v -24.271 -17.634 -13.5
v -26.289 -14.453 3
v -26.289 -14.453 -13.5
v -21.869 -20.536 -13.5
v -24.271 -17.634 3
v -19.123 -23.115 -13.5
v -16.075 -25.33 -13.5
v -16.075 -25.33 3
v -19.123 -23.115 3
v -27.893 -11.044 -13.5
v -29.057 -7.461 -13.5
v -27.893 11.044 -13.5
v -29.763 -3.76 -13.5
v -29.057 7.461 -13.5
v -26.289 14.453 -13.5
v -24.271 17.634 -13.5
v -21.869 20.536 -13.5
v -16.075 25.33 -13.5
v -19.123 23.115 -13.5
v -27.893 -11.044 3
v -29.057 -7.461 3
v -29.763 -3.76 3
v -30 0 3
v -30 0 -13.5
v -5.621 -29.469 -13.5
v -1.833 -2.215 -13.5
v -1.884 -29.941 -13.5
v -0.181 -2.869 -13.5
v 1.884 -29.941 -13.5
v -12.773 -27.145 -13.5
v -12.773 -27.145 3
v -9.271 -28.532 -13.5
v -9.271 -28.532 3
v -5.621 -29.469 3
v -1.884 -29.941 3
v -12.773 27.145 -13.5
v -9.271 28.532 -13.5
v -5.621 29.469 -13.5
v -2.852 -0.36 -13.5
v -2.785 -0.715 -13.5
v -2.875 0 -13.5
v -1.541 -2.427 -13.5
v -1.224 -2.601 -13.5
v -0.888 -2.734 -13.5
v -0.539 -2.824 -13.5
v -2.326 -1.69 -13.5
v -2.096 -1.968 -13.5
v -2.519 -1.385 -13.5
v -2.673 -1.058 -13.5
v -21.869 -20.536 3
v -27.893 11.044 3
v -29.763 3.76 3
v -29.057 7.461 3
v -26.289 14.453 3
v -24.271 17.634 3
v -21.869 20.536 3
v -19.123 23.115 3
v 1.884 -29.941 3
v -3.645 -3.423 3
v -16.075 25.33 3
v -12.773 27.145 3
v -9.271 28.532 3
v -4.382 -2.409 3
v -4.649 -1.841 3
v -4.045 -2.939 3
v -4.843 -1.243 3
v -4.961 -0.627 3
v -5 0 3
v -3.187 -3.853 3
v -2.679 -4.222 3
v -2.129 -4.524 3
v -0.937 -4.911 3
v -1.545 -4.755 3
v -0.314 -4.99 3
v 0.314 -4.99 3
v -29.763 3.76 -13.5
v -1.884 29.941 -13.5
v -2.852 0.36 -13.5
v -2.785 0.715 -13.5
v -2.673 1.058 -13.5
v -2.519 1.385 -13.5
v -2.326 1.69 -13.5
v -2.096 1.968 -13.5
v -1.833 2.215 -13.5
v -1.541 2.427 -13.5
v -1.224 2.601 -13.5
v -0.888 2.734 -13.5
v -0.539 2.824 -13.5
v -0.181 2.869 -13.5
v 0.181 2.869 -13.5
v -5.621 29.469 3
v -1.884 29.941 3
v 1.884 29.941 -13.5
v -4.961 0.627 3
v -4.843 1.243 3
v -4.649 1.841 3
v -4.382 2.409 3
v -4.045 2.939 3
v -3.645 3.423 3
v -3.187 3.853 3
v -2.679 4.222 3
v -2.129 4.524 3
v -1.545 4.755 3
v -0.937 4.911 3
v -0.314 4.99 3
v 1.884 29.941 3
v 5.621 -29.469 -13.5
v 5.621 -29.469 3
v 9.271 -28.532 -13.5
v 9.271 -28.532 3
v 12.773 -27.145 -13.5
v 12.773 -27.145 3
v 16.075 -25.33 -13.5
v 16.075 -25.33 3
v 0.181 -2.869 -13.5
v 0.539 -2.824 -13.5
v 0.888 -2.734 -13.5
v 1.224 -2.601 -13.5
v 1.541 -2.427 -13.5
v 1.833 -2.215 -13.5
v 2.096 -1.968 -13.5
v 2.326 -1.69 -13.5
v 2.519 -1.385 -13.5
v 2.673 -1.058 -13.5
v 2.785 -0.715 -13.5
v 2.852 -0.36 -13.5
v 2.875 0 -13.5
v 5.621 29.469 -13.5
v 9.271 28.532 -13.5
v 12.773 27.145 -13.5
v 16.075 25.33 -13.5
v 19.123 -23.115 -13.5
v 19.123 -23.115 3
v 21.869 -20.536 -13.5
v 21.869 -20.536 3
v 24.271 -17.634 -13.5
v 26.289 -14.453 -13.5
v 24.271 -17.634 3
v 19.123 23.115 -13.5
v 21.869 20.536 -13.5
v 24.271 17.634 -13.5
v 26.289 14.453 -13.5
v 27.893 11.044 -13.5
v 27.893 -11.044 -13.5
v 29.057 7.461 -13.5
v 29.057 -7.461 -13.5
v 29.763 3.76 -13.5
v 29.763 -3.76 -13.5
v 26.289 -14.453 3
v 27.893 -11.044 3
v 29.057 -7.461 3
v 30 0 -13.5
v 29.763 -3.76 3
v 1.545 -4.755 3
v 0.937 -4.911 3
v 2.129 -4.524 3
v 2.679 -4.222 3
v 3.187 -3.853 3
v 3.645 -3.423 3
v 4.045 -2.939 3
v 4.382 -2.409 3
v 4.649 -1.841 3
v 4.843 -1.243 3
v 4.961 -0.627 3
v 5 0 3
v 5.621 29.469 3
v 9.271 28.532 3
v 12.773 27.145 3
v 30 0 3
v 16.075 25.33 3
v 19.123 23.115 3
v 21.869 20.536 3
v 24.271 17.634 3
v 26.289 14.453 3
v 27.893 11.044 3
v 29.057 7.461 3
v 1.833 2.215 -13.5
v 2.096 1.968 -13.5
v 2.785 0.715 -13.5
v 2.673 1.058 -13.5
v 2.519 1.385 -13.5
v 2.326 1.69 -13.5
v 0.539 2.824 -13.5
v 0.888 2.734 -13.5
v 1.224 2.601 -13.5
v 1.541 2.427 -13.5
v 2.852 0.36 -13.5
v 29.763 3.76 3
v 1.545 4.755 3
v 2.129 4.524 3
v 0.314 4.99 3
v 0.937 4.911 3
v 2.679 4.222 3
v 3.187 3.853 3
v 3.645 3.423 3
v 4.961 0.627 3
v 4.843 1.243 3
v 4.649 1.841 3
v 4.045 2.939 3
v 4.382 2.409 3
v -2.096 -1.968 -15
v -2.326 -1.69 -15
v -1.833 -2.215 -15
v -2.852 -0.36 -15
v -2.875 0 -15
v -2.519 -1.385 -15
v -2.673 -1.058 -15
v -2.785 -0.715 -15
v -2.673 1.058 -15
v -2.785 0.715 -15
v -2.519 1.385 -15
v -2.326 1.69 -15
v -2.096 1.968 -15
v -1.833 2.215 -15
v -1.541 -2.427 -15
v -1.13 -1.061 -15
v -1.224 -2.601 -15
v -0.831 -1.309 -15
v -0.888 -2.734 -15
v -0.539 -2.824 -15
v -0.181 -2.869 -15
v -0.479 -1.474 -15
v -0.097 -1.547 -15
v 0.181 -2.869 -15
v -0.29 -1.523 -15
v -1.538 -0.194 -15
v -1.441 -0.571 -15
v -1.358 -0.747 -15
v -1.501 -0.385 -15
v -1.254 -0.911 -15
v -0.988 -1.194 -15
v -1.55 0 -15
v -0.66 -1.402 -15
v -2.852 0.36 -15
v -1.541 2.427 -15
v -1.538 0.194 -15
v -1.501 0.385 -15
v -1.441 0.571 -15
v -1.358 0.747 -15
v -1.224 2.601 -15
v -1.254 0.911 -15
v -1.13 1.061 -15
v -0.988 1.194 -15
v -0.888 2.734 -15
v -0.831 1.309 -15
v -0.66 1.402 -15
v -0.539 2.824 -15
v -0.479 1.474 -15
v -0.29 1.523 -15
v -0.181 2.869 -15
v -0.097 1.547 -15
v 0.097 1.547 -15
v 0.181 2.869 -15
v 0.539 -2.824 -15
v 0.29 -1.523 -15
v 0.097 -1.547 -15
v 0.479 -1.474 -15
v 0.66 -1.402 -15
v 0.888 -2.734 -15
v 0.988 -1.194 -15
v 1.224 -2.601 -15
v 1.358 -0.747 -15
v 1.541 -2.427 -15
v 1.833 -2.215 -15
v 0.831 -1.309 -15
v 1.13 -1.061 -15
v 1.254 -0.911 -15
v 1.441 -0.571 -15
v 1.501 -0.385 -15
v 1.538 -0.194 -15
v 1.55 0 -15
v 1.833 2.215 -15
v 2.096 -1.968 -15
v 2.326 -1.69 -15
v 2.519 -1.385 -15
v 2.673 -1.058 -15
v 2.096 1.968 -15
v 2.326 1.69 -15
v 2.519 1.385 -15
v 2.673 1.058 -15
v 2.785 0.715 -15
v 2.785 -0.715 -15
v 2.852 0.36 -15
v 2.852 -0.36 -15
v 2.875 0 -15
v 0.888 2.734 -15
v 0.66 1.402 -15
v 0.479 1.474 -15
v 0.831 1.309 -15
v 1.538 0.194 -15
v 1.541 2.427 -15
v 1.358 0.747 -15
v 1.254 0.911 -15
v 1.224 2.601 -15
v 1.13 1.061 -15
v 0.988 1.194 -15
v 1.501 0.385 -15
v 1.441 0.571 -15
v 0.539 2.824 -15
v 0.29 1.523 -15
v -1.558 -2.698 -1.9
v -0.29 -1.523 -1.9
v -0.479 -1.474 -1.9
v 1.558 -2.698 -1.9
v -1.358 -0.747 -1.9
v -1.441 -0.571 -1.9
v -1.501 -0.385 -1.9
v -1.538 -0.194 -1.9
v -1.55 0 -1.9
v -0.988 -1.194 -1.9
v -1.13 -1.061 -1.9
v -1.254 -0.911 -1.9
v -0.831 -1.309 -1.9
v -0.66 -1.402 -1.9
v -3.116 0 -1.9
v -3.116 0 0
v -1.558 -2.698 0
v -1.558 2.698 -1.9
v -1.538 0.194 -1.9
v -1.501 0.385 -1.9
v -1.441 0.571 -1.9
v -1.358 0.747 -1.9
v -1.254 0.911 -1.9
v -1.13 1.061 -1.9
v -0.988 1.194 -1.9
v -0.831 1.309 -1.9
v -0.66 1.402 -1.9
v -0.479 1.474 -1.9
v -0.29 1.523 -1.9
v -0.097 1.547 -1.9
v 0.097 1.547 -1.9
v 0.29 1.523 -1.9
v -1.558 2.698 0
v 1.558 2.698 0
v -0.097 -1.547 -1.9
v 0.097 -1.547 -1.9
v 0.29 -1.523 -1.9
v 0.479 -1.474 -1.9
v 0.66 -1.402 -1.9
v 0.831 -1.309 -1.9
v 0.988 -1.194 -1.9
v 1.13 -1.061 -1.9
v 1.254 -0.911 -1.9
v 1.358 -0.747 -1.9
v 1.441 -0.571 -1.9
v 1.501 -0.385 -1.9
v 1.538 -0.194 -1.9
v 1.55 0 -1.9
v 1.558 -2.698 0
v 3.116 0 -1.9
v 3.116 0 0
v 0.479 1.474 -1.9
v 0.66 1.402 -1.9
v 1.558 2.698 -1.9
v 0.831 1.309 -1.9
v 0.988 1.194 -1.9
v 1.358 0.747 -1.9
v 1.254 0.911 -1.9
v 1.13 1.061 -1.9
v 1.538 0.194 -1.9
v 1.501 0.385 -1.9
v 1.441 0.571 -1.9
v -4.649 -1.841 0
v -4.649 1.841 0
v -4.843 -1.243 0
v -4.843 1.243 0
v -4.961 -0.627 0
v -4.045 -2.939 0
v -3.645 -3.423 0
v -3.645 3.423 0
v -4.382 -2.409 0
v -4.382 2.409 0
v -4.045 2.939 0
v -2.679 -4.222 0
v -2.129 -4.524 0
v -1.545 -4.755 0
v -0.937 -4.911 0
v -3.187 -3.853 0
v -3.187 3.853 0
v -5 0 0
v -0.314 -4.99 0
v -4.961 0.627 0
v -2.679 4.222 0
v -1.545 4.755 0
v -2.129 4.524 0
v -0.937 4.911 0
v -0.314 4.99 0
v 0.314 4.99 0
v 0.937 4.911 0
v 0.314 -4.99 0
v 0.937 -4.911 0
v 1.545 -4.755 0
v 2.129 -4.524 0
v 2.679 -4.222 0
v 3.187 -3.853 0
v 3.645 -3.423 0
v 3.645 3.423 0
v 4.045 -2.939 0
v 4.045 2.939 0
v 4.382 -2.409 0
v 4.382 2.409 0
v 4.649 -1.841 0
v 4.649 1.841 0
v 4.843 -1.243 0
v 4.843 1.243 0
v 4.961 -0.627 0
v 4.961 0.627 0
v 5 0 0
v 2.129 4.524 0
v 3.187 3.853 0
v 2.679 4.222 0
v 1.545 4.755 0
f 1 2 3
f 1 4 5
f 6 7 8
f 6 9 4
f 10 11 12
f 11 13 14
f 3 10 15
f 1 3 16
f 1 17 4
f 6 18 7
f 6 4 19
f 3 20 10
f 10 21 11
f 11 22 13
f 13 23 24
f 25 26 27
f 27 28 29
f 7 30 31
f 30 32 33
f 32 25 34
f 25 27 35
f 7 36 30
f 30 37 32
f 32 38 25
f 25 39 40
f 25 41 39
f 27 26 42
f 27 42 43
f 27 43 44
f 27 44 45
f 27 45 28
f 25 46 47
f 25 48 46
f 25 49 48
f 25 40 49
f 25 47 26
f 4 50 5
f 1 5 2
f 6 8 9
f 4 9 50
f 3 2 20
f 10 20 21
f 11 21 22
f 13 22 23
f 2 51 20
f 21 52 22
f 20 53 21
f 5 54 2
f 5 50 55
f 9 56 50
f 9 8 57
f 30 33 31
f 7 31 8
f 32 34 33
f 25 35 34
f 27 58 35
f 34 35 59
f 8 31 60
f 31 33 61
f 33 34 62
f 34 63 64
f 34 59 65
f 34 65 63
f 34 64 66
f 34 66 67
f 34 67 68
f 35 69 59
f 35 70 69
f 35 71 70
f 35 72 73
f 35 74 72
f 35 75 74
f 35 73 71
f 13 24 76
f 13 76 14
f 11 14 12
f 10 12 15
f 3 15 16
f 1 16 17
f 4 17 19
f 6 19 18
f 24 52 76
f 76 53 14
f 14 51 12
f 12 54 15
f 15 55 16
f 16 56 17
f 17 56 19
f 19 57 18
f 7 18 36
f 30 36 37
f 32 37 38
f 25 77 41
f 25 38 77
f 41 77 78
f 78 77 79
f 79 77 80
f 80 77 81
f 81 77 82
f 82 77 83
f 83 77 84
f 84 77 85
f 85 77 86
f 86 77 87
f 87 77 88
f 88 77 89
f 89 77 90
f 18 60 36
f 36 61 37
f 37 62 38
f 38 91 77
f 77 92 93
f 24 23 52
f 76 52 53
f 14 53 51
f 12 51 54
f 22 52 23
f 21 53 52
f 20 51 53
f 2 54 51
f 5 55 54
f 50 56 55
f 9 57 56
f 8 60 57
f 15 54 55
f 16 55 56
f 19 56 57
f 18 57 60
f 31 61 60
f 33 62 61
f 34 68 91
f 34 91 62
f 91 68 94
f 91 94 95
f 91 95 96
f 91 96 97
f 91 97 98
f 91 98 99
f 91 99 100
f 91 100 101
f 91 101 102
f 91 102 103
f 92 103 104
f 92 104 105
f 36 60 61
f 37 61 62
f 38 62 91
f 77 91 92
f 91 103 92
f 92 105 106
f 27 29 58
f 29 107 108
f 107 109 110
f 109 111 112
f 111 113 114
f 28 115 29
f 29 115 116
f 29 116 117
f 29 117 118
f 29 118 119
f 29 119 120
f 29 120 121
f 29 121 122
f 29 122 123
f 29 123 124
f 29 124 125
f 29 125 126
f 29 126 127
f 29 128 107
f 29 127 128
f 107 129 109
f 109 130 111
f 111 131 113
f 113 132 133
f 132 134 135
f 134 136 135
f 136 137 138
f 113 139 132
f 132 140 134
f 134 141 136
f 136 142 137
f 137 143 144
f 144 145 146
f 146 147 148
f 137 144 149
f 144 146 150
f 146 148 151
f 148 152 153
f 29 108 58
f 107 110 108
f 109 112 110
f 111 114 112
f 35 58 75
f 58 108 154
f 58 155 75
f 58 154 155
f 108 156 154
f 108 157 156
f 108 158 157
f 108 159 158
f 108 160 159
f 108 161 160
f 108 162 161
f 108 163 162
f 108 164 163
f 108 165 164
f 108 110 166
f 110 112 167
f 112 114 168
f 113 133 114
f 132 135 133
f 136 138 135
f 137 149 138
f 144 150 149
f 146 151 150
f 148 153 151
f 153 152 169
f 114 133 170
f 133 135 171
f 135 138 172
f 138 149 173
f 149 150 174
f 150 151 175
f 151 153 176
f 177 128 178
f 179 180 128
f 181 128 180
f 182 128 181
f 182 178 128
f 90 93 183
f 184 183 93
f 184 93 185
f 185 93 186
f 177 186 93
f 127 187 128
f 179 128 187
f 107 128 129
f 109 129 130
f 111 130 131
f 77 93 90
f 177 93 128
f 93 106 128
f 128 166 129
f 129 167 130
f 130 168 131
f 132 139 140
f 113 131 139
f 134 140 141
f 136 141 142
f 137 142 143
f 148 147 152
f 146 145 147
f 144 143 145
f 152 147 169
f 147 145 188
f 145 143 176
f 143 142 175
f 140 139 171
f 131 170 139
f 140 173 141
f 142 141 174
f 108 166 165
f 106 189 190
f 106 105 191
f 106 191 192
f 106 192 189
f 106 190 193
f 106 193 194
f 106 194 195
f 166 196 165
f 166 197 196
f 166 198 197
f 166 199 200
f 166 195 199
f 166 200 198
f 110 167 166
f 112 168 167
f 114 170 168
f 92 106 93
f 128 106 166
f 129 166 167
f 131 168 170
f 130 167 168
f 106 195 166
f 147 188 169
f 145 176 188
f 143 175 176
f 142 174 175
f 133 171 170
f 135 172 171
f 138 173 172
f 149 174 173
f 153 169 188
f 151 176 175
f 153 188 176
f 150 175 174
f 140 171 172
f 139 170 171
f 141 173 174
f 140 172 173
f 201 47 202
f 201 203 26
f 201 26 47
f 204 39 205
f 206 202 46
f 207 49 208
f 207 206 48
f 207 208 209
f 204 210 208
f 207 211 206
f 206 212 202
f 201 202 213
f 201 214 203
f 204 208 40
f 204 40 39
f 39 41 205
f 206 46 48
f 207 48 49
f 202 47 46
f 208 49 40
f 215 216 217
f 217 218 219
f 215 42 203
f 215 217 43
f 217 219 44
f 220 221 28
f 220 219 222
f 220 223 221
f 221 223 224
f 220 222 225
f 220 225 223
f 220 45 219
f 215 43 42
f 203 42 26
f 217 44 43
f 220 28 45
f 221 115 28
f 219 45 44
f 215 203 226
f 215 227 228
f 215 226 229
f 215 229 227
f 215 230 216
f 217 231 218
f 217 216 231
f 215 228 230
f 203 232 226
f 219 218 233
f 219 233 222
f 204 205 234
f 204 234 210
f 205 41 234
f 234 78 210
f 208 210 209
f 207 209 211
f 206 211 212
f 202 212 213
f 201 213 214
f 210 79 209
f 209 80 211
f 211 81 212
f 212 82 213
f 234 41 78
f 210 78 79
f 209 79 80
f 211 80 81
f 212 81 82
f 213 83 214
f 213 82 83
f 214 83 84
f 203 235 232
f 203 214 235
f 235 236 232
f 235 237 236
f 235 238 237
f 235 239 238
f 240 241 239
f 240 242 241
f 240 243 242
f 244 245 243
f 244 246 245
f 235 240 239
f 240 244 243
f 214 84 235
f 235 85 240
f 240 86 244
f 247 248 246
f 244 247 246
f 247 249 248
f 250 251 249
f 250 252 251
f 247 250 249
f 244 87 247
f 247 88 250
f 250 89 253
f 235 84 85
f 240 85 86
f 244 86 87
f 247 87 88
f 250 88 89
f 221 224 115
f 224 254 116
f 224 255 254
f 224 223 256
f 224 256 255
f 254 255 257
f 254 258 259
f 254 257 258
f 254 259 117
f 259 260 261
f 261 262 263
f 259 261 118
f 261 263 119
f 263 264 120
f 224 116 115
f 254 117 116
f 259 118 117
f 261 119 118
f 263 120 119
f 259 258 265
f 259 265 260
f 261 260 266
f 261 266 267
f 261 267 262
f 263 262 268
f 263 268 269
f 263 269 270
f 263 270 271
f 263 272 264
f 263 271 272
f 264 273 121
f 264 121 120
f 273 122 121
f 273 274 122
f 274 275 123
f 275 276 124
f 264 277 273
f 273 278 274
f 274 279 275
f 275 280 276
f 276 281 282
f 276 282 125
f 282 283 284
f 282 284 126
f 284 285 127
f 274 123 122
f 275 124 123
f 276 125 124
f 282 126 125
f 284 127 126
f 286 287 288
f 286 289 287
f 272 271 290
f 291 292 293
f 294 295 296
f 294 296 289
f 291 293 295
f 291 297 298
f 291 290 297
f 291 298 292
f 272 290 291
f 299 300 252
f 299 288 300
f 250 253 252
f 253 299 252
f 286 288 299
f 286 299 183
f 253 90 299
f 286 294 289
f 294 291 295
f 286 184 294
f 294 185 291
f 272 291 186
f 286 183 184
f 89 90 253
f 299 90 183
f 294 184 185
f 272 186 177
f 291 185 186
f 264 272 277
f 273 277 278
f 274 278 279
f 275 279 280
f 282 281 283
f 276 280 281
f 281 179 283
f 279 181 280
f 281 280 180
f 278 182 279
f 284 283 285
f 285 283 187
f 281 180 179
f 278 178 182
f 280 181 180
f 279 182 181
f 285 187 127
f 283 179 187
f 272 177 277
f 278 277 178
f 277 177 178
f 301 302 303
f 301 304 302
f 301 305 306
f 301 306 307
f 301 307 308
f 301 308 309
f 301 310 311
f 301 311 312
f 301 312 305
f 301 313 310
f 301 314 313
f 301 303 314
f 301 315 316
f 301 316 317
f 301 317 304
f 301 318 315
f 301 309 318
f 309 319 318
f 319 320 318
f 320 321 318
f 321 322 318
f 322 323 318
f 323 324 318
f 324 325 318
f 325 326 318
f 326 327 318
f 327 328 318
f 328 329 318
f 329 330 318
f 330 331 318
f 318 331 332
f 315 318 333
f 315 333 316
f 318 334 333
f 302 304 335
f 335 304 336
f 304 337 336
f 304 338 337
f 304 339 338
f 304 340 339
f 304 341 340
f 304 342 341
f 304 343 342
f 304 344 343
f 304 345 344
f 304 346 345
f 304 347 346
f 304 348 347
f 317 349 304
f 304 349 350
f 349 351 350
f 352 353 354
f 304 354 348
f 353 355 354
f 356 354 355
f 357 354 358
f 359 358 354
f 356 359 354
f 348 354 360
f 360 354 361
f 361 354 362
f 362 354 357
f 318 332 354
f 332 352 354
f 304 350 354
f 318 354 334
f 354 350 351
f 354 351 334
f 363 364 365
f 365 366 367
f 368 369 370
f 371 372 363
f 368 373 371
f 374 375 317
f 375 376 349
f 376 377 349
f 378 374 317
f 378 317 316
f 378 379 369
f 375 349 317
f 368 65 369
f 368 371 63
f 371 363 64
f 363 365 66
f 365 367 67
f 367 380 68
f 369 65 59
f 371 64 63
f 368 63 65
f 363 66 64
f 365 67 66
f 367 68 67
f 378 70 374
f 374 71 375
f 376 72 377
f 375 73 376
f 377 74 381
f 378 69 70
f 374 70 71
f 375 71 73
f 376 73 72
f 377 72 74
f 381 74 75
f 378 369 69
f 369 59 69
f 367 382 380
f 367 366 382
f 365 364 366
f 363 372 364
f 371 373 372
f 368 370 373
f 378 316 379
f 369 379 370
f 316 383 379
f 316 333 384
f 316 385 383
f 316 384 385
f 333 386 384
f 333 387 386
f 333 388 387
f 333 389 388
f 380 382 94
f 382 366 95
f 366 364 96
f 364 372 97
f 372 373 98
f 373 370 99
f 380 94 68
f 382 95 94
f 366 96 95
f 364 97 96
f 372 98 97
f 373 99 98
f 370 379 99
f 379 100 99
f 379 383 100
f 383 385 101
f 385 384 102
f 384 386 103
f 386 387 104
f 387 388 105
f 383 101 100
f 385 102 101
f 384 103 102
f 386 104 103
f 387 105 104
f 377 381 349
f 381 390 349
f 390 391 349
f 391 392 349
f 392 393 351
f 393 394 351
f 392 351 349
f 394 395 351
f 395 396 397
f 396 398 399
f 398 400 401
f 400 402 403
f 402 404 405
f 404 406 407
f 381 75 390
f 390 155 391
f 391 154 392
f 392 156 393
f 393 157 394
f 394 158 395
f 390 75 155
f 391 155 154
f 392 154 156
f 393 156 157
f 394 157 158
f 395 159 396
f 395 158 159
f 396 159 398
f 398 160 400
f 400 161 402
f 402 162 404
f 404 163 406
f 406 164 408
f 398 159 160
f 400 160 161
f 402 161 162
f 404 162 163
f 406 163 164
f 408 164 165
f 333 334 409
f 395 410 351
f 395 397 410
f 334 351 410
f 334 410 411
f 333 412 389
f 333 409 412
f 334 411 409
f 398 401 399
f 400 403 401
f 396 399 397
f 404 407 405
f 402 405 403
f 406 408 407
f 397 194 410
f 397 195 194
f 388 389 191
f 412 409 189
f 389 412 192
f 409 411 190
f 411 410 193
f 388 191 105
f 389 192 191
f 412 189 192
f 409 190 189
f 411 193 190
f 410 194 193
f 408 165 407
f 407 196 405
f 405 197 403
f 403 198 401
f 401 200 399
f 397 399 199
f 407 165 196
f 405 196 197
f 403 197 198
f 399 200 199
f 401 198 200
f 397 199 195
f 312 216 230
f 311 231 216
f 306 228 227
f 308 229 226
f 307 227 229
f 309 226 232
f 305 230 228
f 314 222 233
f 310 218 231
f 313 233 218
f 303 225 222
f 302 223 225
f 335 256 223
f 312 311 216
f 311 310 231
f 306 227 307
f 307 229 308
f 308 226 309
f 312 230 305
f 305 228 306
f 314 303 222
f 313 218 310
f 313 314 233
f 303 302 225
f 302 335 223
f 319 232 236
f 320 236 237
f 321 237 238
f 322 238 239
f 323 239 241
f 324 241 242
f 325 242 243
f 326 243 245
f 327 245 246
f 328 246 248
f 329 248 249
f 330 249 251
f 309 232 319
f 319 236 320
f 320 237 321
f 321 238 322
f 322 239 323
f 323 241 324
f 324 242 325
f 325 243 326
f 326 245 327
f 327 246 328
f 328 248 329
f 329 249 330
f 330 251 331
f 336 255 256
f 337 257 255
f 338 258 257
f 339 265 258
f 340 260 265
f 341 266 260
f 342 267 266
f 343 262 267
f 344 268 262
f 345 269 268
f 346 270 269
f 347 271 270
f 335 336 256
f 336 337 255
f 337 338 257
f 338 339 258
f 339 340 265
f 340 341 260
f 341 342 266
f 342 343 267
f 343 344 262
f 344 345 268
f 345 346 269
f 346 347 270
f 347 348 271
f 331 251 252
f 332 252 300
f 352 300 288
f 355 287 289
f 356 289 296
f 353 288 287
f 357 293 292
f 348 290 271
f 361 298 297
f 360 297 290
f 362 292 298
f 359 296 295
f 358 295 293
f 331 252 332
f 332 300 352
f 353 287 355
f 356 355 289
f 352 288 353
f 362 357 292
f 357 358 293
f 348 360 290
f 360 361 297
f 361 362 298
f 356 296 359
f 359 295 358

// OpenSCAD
$fn = 50;


difference() {
	union() {
		translate(v = [0, 0, -13.5000000000]) {
			cylinder(h = 16.5000000000, r = 30.0000000000);
		}
		#translate(v = [0, 0, -15.0000000000]) {
			cylinder(h = 15, r = 2.8750000000);
		}
	}
	union() {
		translate(v = [0, 0, 0]) {
			rotate(a = [0, 0, 0]) {
				difference() {
					union() {
						translate(v = [0, 0, -1.9000000000]) {
							linear_extrude(height = 1.9000000000) {
								polygon(points = [[3.1158000000, 0.0000000000], [1.5579000000, 2.6983619531], [-1.5579000000, 2.6983619531], [-3.1158000000, 0.0000000000], [-1.5579000000, -2.6983619531], [1.5579000000, -2.6983619531]]);
							}
						}
					}
					union();
				}
			}
		}
		#cylinder(h = 3, r = 5.0000000000);
		#translate(v = [0, 0, -100.0000000000]) {
			cylinder(h = 200, r = 1.5500000000);
		}
	}
}
